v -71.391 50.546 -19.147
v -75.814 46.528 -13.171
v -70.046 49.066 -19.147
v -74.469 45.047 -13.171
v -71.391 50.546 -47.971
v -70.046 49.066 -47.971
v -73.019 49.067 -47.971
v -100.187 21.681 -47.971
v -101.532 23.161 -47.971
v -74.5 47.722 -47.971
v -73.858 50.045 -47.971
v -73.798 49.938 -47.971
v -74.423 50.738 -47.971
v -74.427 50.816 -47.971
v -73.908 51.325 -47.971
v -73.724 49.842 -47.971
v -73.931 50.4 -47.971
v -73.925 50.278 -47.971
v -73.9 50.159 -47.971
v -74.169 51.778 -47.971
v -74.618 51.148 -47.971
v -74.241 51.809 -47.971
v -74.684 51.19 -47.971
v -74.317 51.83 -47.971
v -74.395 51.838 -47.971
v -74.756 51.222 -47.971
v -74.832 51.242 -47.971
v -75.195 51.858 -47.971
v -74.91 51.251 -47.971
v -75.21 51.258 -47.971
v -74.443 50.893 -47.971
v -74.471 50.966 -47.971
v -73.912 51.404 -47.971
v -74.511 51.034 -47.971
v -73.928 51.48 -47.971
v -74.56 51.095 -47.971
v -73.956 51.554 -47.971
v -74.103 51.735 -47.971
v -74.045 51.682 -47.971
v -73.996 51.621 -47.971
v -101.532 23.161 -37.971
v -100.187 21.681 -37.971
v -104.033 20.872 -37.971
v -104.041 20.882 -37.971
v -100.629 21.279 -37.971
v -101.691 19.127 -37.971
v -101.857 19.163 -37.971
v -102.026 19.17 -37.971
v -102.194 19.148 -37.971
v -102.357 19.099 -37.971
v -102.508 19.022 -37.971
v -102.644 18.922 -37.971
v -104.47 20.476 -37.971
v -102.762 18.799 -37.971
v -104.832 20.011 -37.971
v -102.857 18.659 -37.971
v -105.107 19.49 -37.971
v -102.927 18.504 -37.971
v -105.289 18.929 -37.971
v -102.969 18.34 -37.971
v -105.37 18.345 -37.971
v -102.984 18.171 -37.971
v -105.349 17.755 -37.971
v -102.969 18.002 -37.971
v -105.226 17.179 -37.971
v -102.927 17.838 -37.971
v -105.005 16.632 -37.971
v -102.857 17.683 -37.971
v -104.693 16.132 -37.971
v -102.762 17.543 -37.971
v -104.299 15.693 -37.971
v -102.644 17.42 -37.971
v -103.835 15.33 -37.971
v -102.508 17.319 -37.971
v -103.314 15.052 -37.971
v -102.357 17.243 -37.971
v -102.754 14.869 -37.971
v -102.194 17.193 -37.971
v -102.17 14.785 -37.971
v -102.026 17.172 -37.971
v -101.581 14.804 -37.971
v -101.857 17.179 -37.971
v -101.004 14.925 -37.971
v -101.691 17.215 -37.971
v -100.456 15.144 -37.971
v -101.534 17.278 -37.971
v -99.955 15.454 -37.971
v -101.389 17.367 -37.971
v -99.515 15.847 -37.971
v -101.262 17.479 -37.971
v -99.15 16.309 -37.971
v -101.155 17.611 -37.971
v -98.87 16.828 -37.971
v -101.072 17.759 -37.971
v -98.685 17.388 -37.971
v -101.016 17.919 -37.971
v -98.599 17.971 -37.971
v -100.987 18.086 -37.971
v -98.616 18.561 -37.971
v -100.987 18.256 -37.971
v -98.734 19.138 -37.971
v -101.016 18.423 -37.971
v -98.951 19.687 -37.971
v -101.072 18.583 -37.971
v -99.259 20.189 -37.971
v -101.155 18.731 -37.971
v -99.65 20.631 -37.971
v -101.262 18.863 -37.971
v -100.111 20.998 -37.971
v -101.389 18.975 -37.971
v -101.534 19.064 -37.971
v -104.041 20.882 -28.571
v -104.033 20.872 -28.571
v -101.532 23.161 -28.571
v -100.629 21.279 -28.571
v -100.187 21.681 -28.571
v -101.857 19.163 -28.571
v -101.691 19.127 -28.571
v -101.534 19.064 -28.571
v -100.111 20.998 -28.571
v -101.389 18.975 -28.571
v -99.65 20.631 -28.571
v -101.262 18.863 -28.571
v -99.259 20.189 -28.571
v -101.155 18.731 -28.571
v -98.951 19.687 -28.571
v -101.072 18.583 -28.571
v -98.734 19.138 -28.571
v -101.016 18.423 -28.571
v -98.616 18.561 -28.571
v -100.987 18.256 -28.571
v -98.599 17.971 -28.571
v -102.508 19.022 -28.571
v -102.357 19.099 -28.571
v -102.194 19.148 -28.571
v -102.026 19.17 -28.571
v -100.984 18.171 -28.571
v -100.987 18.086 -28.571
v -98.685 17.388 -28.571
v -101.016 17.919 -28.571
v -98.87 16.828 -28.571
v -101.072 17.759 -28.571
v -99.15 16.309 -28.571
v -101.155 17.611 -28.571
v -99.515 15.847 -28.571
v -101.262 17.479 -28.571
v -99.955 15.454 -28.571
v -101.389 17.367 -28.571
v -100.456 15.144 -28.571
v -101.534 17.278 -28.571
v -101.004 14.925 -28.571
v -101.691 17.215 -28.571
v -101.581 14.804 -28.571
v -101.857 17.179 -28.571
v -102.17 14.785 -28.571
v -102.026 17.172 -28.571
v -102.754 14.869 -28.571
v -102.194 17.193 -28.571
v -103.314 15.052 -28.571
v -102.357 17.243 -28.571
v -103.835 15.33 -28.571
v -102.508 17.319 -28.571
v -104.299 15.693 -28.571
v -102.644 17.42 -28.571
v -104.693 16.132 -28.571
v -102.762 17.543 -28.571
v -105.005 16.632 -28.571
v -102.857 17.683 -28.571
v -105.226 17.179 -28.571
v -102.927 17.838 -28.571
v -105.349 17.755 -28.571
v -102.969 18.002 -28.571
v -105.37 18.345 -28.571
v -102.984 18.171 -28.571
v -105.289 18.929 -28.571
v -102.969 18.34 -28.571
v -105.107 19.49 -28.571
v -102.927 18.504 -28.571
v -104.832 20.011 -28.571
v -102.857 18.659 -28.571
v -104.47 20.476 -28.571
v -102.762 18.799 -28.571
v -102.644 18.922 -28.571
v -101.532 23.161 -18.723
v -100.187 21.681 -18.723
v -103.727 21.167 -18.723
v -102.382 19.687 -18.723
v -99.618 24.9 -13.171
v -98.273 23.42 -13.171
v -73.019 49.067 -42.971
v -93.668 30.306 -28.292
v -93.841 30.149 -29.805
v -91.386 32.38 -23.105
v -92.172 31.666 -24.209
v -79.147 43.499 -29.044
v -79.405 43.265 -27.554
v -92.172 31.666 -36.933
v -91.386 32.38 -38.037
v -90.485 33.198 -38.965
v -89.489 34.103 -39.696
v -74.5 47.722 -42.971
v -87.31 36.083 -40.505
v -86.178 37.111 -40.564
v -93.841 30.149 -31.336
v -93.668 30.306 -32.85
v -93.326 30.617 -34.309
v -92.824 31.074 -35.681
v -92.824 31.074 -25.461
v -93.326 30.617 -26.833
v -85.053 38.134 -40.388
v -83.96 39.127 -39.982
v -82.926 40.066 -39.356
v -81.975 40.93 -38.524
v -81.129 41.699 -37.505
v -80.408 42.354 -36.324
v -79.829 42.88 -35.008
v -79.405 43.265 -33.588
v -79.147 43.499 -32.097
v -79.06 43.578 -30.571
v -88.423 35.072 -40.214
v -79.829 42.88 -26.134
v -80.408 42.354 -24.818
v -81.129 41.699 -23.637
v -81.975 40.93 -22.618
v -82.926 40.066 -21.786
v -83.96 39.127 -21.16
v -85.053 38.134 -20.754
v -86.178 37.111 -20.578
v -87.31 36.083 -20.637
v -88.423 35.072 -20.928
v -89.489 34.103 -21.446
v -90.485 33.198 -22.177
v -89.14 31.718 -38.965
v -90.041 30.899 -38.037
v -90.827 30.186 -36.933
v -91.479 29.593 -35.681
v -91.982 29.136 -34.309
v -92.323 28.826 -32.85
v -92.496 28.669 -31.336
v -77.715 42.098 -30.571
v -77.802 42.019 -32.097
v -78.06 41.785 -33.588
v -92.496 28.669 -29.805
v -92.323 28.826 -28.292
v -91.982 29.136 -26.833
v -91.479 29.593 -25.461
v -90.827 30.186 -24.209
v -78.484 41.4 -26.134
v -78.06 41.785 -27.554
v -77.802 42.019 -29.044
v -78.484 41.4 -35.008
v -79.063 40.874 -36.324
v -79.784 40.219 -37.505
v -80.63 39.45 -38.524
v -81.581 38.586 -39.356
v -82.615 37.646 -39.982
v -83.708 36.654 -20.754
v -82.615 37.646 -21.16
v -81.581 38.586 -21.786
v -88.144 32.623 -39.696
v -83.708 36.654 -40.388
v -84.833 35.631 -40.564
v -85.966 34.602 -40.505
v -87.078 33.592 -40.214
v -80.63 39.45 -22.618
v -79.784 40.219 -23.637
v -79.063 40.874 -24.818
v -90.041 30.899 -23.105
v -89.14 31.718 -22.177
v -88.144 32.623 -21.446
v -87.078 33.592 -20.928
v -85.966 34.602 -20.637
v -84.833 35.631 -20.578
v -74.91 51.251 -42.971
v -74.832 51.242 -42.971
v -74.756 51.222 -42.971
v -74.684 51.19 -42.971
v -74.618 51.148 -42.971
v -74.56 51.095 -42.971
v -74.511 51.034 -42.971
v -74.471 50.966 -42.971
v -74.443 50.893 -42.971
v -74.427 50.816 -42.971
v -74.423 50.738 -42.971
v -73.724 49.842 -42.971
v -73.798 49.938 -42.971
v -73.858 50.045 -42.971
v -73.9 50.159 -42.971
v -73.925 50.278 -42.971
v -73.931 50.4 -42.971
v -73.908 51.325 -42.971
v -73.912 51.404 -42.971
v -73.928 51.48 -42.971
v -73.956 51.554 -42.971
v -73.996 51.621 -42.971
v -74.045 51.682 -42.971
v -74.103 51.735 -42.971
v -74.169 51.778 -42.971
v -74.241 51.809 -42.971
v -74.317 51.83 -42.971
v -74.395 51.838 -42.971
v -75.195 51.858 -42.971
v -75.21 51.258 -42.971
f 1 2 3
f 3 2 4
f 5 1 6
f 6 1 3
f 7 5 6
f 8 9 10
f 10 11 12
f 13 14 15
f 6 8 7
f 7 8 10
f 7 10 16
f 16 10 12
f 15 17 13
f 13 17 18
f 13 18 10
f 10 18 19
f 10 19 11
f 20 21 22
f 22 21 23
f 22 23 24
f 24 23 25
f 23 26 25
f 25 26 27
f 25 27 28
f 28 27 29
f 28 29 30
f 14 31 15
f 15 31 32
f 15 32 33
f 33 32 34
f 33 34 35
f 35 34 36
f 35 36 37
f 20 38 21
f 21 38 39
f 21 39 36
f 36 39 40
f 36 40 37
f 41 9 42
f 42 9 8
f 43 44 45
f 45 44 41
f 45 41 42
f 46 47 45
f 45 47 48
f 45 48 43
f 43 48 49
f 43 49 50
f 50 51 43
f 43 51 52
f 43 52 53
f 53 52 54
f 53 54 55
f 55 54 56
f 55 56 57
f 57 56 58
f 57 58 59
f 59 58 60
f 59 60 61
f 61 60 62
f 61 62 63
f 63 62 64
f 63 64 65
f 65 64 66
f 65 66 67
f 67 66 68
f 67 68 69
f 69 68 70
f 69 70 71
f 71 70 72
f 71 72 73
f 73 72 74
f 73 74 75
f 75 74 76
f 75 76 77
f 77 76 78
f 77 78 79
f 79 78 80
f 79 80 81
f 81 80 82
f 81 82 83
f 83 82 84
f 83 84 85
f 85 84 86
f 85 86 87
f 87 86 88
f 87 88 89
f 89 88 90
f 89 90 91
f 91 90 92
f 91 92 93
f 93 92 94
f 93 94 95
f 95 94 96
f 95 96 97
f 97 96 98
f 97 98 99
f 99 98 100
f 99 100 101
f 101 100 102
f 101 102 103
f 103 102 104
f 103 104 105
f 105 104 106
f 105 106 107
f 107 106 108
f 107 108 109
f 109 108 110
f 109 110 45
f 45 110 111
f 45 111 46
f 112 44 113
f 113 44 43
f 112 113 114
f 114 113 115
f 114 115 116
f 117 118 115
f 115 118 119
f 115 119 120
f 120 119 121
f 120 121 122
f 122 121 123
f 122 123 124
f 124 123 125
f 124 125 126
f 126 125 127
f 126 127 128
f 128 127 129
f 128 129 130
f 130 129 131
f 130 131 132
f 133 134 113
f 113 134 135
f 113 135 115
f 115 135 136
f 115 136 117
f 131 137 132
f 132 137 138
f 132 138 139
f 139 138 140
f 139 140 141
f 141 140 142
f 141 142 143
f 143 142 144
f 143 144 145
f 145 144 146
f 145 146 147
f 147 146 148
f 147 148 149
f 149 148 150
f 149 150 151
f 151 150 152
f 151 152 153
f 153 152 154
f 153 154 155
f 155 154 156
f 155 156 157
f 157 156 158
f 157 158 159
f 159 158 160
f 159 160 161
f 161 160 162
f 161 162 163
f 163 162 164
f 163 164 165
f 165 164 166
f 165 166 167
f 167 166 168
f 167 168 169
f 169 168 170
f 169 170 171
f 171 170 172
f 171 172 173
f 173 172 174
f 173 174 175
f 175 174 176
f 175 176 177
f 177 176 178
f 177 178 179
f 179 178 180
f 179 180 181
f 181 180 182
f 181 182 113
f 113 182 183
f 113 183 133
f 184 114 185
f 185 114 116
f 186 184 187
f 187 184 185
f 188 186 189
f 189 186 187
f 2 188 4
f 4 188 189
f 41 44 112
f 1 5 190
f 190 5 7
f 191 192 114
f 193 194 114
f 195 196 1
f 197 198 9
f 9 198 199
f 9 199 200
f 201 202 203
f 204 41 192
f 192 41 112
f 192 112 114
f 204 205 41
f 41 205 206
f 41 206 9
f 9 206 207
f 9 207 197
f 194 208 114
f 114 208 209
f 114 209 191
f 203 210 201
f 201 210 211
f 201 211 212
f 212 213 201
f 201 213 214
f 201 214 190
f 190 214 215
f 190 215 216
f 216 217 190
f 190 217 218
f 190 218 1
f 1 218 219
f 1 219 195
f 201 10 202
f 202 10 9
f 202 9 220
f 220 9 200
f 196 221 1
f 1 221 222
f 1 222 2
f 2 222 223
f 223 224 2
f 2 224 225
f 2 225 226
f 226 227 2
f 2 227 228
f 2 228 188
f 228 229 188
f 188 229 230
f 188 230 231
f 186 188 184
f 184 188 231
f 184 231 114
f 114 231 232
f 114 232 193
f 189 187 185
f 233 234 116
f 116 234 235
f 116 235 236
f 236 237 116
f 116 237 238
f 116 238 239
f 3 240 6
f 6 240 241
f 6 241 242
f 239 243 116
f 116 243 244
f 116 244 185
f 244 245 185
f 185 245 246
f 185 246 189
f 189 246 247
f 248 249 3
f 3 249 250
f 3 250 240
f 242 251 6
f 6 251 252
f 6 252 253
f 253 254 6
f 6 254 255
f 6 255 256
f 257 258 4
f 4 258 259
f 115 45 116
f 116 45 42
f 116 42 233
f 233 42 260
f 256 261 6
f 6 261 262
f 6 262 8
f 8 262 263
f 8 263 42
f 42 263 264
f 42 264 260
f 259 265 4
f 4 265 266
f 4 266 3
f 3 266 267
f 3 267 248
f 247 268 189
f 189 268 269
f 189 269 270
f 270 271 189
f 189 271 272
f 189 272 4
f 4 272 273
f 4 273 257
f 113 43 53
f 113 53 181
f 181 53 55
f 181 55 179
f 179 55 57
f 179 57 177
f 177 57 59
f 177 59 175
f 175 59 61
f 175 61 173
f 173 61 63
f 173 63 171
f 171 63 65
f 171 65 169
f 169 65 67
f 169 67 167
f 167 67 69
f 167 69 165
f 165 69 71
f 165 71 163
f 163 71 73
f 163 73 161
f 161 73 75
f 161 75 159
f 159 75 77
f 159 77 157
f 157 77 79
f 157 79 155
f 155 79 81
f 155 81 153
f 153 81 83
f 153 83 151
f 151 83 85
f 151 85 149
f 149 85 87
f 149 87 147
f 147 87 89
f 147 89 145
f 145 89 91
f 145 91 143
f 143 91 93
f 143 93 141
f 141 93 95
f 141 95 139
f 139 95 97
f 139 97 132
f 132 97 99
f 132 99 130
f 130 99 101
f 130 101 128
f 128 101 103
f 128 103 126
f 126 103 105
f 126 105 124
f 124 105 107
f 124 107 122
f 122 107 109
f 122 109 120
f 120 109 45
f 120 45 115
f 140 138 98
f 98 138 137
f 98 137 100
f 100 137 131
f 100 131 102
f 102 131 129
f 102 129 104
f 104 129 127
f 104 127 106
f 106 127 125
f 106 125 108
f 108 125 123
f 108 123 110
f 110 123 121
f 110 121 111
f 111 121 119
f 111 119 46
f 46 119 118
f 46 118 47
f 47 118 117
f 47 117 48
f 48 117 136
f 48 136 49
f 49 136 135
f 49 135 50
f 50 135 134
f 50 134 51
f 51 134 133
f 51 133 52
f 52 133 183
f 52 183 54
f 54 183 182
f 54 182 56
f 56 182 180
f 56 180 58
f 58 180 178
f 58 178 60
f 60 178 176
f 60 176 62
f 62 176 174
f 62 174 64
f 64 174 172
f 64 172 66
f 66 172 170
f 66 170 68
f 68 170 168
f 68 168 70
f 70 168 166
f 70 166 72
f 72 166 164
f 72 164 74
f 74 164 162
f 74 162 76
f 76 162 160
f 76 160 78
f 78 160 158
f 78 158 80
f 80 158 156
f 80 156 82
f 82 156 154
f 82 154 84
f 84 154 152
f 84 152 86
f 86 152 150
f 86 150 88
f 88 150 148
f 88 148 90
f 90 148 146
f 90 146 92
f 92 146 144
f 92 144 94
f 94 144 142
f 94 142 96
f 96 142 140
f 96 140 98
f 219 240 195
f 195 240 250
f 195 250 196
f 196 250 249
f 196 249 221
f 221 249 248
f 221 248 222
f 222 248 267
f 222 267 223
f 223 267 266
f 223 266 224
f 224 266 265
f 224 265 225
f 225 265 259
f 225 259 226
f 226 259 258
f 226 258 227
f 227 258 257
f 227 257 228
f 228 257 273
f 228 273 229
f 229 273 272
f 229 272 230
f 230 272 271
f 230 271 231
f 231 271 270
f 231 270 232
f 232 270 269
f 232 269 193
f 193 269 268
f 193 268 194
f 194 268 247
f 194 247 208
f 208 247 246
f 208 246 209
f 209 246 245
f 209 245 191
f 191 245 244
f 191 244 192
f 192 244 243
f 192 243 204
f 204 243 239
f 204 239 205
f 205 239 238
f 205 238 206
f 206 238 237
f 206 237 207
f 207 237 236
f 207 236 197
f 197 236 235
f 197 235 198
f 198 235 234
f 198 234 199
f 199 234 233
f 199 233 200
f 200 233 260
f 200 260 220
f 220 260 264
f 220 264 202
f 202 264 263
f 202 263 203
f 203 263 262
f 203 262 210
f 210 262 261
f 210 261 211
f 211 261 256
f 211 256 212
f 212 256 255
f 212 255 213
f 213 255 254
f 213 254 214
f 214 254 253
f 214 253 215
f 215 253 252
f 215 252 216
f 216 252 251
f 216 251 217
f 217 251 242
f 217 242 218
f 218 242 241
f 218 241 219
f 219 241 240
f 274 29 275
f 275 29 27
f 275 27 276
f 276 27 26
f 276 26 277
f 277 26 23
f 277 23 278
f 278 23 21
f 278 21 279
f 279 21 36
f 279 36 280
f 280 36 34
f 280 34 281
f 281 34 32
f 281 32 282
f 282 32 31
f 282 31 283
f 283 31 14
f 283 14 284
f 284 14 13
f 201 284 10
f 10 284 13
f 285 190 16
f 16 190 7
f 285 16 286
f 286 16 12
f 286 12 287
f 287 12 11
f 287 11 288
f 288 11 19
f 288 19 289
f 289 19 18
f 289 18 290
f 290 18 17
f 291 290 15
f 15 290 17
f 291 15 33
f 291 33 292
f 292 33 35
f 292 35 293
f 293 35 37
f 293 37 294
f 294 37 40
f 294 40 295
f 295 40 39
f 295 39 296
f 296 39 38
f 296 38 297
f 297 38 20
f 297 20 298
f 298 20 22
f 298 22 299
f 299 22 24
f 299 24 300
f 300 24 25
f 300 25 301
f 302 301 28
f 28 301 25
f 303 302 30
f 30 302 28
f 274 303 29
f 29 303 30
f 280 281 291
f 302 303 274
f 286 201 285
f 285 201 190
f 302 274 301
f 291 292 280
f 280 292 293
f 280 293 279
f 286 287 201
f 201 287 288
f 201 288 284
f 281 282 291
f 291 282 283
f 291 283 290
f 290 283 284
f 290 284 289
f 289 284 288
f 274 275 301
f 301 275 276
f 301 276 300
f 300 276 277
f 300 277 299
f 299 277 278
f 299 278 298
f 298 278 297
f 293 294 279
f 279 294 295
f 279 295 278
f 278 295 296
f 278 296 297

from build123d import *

# Parameters (mm, degrees)
BOSS_EXTRU_1_DEPTH      = 2
ESQUISSE2_R             = 3.390627372
ESQUISSE2_R_2           = 1
BOSS_EXTRU_2_DEPTH      = 9.4
ESQUISSE3_R             = 10
ENL_V_MAT_EXTRU_1_DEPTH = 2
BOSS_EXTRU_4_DEPTH      = 5


with BuildPart() as part:
    # Esquisse1 → Boss.-Extru.1 (new body)
    with BuildSketch(Plane(origin=(-56.095259607, 61.741123985, 0), x_dir=(0, 0, 1), z_dir=(0.6724559427452335, -0.7401371528754785, 0))):
        Polygon((-13.170985067, 24.825265138), (-13.170985067, 56.986737001), (-18.722825356, 62.53857729), (-18.722825356, 59.57280759), (-28.570985067, 59.57280759), (-28.570985067, 62.962841359), (-37.970985067, 62.962841359), (-37.970985067, 59.57280759), (-47.970985067, 59.57280759), (-47.970985067, 18.84916078), (-19.147089425, 18.84916078), align=None)
    extrude(amount=-BOSS_EXTRU_1_DEPTH)

    # Esquisse2 → Boss.-Extru.2 (add)
    with BuildSketch(Plane(origin=(0, 0, -37.970985067), x_dir=(-1, 0, 0), z_dir=(0, 0, -1))):
        with Locations((101.983702424, 18.170834722)):
            Circle(ESQUISSE2_R)
        with Locations((101.983702424, 18.170834722)):
            Circle(ESQUISSE2_R_2, mode=Mode.SUBTRACT)
    extrude(amount=-BOSS_EXTRU_2_DEPTH)

    # Esquisse3 → Enlèv. mat.-Extru.1 (cut)
    with BuildSketch(Plane(origin=(-56.095259607, 61.741123985, 0), x_dir=(0, 0, -1), z_dir=(0.6724559427452331, -0.7401371528754788, 0))):
        with Locations(Location((30.570985067, -39.210984185, 0), (0, 0, 90))):
            Circle(ESQUISSE3_R)
    extrude(amount=-ENL_V_MAT_EXTRU_1_DEPTH, mode=Mode.SUBTRACT)

    # Esquisse4 → Boss.-Extru.4 (add)
    with BuildSketch(Plane(origin=(0, 0, -47.970985067), x_dir=(-1, 0, 0), z_dir=(0, 0, -1))):
        with BuildLine():
            Line((73.931199041, 50.400140176), (73.907590469, 51.325240797))
            ThreePointArc((73.907590469, 51.325240797), (74.044969666, 51.682415216), (74.394671882, 51.837833908))
            Line((74.394671882, 51.837833908), (75.194671882, 51.858249912))
            Line((75.194671882, 51.858249912), (75.209983884, 51.258249912))
            Line((75.209983884, 51.258249912), (74.909821146, 51.250589757))
            ThreePointArc((74.909821146, 51.250589757), (74.560118931, 51.095171065), (74.422739734, 50.737996646))
            Line((74.422739734, 50.737996646), (74.499711728, 47.721853148))
            Line((74.499711728, 47.721853148), (73.019437422, 49.066765034))
            Line((73.019437422, 49.066765034), (73.723569144, 49.841766063))
            ThreePointArc((73.723569144, 49.841766063), (73.881297111, 50.10090571), (73.931199041, 50.400140176))
        make_face()
    extrude(amount=-BOSS_EXTRU_4_DEPTH)


solid = part.part
